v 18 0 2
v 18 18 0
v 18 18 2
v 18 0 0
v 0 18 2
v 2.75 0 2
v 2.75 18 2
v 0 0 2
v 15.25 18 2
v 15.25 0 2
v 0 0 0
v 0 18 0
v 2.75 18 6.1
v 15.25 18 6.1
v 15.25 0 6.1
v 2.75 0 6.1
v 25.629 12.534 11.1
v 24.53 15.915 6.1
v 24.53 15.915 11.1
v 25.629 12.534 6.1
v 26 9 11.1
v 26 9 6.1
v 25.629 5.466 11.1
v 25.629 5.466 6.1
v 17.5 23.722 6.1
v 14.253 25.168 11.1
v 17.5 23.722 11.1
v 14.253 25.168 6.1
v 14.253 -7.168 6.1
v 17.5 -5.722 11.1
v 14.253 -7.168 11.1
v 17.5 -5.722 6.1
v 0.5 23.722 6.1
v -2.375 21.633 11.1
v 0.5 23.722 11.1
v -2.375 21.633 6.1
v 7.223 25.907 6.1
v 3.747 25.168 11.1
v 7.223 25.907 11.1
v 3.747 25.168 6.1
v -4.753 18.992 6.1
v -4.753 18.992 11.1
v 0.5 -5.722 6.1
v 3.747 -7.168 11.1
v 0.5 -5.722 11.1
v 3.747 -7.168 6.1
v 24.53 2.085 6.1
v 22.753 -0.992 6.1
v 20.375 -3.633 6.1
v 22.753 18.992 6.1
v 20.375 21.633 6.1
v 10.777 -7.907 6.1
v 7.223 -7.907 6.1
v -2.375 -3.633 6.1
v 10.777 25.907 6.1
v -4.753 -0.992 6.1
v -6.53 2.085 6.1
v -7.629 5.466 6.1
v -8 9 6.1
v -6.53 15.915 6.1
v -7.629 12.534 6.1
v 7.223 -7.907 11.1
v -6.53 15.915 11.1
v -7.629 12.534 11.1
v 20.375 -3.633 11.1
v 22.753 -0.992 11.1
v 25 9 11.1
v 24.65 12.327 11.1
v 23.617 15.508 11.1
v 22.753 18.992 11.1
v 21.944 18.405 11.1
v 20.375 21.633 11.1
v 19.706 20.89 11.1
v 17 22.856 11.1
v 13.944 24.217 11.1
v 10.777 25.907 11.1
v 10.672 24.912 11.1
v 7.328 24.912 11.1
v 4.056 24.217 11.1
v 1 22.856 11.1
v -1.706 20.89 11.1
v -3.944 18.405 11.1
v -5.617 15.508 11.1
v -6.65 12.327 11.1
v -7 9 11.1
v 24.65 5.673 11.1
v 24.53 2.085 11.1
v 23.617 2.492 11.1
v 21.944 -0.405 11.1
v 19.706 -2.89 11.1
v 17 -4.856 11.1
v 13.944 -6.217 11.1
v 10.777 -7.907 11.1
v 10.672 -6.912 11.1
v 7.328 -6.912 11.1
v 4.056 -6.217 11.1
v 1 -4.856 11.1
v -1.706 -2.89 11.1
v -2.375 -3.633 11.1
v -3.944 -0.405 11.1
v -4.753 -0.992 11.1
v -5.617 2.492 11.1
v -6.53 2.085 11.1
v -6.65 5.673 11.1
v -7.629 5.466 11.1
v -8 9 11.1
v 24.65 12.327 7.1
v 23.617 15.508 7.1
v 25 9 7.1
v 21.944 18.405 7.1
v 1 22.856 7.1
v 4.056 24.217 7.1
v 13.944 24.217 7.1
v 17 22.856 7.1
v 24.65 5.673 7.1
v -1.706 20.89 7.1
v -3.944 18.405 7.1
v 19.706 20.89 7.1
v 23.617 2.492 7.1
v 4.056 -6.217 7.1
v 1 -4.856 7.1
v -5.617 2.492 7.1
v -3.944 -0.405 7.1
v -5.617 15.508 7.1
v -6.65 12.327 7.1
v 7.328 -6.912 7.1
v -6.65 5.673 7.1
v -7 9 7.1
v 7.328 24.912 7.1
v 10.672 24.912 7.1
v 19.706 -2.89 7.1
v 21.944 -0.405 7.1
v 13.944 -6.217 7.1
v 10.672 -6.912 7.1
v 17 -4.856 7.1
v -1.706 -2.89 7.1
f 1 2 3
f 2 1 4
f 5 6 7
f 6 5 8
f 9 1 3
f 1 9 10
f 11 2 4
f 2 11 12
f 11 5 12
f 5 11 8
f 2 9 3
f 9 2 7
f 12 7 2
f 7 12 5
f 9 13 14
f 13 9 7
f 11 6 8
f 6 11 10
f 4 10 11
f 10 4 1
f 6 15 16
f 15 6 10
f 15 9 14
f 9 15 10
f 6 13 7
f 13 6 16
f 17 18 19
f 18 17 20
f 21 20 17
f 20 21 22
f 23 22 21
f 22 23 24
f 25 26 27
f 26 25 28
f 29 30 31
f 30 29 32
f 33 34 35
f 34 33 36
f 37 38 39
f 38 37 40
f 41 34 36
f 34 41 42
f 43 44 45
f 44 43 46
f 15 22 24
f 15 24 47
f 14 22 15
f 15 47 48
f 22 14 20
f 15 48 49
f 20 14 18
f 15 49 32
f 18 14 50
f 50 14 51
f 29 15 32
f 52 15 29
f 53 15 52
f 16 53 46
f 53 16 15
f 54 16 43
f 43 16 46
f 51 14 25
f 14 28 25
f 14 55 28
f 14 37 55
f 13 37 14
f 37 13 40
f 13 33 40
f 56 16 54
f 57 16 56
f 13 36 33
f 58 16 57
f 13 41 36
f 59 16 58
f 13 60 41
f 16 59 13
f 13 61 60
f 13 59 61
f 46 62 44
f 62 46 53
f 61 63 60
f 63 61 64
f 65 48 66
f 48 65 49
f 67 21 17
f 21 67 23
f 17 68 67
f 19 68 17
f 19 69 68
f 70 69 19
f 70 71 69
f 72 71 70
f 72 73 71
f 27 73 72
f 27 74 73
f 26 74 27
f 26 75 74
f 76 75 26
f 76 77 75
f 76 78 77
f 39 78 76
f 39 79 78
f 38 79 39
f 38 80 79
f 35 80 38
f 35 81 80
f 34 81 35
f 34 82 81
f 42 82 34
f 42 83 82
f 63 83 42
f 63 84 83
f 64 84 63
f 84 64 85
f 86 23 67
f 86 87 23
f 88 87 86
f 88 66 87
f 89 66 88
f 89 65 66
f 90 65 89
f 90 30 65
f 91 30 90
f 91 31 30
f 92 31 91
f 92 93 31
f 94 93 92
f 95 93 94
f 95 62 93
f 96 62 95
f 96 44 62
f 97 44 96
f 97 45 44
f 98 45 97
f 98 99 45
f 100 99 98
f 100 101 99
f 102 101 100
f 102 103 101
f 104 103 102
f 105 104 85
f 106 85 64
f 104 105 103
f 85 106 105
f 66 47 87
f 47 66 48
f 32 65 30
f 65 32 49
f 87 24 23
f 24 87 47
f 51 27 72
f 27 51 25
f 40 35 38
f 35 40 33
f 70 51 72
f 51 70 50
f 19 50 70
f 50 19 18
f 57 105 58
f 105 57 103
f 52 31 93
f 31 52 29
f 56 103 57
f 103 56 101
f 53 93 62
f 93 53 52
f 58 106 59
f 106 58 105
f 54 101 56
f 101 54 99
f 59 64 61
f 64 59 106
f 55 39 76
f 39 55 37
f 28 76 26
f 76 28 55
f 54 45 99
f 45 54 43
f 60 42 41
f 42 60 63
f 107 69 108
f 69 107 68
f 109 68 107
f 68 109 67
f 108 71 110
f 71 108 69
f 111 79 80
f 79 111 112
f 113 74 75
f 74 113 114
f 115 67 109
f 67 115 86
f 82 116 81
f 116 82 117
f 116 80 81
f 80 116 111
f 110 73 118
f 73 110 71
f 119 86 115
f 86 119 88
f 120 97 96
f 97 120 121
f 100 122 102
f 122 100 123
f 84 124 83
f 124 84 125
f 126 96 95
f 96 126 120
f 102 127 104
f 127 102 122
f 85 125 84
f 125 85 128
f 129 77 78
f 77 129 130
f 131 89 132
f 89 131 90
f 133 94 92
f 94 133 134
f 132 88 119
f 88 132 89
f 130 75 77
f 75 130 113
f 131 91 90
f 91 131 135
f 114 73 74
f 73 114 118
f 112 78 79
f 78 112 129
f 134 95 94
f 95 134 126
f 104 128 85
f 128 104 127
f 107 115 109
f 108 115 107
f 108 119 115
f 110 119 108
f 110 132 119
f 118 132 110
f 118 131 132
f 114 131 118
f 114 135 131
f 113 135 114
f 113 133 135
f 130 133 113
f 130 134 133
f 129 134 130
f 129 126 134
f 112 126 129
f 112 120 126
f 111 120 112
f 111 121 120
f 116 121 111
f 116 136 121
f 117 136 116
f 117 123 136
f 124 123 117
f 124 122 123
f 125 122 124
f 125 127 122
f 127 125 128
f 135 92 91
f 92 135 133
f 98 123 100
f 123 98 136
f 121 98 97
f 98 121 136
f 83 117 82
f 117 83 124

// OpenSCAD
module ColdShueMale() {
	cube([ 18, 18, 2 ]);
	translate([ (18 - 12.5) / 2, 0, 0 ]) {
		cube([ 12.5, 18, 7 ]);
	}
}

module Level() {
	R = 32;
	difference() {
		cylinder(5, (R + 2) / 2, (R + 2) / 2);
		translate([ 0, 0, 1 ]) cylinder(5.1, (R / 2), (R / 2));
	}
}

module HotShoeLevelAdapter() {
	ColdShueMale();
	translate([ 9, 9, 6.1 ]) Level();
}

HotShoeLevelAdapter();
